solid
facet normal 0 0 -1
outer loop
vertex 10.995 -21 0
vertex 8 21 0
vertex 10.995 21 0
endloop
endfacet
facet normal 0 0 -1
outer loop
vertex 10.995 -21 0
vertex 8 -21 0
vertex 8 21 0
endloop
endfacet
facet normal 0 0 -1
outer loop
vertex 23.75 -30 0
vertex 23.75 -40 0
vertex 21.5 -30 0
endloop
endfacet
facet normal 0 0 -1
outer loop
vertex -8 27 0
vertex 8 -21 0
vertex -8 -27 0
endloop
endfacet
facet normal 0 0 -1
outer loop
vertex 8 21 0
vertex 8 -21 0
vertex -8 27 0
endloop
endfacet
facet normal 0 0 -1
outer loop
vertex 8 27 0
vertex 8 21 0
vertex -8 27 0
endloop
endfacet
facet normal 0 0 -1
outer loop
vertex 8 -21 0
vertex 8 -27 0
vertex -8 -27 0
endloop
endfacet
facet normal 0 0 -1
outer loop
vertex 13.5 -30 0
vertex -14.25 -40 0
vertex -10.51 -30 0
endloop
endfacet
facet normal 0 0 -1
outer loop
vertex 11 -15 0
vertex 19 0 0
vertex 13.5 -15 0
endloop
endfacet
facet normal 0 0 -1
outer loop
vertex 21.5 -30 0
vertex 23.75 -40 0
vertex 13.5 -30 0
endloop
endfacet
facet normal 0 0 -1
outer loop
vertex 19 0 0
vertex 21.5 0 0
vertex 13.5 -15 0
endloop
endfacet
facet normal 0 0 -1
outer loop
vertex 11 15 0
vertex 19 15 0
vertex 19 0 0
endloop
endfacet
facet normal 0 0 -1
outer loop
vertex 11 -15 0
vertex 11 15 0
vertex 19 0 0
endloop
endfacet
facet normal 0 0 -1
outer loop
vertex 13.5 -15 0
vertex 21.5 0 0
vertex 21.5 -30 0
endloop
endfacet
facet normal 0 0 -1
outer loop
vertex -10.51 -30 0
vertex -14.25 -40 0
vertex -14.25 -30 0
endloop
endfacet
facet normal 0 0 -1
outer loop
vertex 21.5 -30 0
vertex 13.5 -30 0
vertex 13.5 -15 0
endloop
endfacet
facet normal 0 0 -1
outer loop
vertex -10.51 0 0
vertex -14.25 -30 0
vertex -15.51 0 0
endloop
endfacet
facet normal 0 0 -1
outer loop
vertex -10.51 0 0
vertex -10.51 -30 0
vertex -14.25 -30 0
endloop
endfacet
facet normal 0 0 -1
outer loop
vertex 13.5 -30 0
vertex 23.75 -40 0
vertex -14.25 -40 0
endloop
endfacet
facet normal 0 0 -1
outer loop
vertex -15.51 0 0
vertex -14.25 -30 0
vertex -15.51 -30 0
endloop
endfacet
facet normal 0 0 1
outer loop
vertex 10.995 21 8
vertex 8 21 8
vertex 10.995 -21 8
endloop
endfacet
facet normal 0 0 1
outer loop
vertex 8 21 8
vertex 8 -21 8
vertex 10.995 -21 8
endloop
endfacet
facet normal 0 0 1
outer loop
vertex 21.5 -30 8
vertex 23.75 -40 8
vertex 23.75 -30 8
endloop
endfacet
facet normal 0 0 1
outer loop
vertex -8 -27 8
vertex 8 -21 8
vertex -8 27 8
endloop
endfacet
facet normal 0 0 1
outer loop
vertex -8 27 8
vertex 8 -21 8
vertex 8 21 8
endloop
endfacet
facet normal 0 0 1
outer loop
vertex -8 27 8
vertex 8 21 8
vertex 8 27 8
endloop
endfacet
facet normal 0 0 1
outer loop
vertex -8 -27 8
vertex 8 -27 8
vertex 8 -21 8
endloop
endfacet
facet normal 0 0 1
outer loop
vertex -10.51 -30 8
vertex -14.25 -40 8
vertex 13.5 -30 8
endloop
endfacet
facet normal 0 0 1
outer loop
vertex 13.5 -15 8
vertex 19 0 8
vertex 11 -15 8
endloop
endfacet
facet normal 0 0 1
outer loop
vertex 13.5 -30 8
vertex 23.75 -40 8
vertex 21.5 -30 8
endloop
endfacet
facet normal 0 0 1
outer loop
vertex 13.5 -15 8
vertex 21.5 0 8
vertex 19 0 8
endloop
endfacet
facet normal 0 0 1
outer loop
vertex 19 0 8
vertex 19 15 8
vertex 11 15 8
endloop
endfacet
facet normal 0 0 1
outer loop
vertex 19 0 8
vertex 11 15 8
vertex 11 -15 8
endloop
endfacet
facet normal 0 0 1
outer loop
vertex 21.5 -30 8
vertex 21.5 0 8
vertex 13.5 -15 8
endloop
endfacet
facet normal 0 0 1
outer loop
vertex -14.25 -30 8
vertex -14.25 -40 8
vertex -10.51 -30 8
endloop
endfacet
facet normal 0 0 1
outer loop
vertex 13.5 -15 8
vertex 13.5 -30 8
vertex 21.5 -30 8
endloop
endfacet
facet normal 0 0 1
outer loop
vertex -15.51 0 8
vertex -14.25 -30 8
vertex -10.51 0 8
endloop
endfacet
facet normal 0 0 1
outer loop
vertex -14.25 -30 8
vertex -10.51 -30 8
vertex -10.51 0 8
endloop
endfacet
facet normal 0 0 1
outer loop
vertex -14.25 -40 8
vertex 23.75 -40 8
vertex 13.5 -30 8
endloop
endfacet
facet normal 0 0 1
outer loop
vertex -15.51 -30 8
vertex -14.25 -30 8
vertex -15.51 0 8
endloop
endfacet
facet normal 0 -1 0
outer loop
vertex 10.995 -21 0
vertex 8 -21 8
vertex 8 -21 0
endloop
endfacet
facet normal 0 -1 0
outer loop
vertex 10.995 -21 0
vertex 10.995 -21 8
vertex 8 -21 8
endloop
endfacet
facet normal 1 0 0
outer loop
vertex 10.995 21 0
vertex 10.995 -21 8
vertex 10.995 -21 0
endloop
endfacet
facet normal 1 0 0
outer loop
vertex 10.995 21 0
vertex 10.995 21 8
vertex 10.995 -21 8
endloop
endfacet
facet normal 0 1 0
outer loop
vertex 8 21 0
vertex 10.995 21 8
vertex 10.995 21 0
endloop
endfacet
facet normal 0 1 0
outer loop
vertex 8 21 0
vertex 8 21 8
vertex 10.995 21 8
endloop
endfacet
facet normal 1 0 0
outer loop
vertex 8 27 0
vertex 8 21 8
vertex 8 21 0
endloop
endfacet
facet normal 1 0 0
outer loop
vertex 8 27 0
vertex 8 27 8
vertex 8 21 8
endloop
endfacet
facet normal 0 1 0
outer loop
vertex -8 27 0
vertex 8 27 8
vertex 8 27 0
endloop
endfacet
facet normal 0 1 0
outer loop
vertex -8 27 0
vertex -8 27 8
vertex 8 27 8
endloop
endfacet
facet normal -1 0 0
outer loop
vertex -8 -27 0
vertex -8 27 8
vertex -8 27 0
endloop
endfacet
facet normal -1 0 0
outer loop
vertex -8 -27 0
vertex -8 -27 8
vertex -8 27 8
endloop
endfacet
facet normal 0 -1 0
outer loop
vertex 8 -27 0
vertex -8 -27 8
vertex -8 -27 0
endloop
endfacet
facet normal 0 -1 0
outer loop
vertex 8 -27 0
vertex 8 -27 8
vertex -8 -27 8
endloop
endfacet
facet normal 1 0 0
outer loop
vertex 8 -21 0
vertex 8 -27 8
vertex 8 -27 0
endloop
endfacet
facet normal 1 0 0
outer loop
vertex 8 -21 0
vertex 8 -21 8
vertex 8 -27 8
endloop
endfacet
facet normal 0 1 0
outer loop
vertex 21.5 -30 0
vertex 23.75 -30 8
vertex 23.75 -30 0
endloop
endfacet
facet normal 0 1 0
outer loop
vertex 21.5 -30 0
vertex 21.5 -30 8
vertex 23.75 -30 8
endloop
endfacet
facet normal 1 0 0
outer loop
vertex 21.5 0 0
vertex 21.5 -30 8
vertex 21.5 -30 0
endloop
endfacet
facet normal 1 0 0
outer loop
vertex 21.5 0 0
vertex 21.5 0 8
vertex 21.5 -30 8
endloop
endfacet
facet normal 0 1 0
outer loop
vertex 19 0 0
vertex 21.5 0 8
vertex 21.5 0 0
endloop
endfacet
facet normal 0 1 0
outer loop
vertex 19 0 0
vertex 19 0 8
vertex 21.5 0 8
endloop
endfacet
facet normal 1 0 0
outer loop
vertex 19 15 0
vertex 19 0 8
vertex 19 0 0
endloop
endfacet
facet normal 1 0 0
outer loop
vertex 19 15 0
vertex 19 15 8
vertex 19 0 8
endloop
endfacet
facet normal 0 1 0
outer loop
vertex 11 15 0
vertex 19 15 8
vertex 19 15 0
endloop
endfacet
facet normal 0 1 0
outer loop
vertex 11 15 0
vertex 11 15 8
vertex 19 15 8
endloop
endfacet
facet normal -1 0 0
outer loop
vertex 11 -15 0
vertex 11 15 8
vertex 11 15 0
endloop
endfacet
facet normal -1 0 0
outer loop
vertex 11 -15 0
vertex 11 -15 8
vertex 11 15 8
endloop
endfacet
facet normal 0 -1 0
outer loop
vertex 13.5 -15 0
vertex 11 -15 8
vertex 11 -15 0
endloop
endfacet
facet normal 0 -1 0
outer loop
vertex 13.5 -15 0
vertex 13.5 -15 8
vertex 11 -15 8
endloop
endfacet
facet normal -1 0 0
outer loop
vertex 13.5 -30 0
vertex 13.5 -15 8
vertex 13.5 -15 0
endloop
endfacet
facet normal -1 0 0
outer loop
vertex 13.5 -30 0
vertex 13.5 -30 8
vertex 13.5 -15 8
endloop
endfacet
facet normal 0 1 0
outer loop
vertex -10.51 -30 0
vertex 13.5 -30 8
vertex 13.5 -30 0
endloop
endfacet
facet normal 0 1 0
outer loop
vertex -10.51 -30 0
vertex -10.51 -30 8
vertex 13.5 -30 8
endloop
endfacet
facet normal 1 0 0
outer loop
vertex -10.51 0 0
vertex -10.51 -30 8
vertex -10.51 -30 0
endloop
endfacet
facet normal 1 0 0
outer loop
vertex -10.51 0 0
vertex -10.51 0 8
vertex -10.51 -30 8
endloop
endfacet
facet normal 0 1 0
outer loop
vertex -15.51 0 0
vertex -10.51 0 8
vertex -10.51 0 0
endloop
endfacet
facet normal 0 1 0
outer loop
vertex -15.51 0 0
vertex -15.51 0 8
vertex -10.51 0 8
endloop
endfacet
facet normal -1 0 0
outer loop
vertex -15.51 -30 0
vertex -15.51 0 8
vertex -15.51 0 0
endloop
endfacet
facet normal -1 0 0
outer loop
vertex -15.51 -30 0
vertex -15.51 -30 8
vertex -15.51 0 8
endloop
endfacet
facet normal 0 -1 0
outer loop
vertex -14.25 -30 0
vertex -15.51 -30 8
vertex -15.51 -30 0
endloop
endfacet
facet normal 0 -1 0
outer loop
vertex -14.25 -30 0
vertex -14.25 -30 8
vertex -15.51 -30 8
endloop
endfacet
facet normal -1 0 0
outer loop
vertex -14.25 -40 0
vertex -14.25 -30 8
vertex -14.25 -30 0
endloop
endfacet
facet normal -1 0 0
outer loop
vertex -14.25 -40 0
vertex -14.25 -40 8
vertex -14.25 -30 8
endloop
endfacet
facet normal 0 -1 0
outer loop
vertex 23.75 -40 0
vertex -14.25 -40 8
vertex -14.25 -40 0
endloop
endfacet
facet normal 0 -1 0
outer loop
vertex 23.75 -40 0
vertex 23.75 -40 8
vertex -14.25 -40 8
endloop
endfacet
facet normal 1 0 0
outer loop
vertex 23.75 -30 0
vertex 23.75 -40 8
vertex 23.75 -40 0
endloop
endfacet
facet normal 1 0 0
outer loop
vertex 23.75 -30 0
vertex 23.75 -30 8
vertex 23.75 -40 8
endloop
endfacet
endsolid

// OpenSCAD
// file: desk.scad
thickness = 3;
outer_height = 60;
inner_height = outer_height - 2 * thickness;
inner_width = 16;
outer_width = inner_width + 2 * thickness;
cutout_height = 42;
epsilon = 0.01;

// Cross-section of rail that goes underneath desk
module desk_cross_section() {
    difference() {
        square([outer_width, outer_height], center=true);
        square([inner_width, inner_height], center=true);
        translate([inner_width / 2 - epsilon, -cutout_height / 2, 0]) {
            square([thickness + 2*epsilon, cutout_height]);
        }
    }
}

// Creates a rail-mountable cutout
module rail_cutout(tolerance=0.1) {
    difference() {
        square([outer_width - epsilon, outer_height - epsilon], center=true);
        desk_cross_section();
    }
}
      
// main file
include <desk.scad>;

clip_thickness = 5;
clip_height = 30;

support_thickness = 8;
support_height = 30;

connector_height = 10;

module headphone_holder() {
    union() {
        rail_cutout();
        // Mounting surface for external accesory
        translate([-outer_width / 2 - 1.5 * thickness - epsilon, -outer_height / 2]) {
            square([clip_thickness, clip_height]);
        }
        color("blue") translate([outer_width / 2, -outer_height / 4]) {
            square([support_thickness, support_height]);
        }

        color("green") {
            translate([-(outer_width + thickness / 2 + clip_thickness) / 2, -outer_height / 2 - connector_height]) {
                square([outer_width + thickness + clip_thickness + support_thickness, connector_height]);
            }
            translate([outer_width / 2 + clip_thickness / 2, -outer_height / 2]) {
                square([support_thickness, outer_height / 2]);
            }
        }
    }
}

linear_extrude(8) headphone_holder();
